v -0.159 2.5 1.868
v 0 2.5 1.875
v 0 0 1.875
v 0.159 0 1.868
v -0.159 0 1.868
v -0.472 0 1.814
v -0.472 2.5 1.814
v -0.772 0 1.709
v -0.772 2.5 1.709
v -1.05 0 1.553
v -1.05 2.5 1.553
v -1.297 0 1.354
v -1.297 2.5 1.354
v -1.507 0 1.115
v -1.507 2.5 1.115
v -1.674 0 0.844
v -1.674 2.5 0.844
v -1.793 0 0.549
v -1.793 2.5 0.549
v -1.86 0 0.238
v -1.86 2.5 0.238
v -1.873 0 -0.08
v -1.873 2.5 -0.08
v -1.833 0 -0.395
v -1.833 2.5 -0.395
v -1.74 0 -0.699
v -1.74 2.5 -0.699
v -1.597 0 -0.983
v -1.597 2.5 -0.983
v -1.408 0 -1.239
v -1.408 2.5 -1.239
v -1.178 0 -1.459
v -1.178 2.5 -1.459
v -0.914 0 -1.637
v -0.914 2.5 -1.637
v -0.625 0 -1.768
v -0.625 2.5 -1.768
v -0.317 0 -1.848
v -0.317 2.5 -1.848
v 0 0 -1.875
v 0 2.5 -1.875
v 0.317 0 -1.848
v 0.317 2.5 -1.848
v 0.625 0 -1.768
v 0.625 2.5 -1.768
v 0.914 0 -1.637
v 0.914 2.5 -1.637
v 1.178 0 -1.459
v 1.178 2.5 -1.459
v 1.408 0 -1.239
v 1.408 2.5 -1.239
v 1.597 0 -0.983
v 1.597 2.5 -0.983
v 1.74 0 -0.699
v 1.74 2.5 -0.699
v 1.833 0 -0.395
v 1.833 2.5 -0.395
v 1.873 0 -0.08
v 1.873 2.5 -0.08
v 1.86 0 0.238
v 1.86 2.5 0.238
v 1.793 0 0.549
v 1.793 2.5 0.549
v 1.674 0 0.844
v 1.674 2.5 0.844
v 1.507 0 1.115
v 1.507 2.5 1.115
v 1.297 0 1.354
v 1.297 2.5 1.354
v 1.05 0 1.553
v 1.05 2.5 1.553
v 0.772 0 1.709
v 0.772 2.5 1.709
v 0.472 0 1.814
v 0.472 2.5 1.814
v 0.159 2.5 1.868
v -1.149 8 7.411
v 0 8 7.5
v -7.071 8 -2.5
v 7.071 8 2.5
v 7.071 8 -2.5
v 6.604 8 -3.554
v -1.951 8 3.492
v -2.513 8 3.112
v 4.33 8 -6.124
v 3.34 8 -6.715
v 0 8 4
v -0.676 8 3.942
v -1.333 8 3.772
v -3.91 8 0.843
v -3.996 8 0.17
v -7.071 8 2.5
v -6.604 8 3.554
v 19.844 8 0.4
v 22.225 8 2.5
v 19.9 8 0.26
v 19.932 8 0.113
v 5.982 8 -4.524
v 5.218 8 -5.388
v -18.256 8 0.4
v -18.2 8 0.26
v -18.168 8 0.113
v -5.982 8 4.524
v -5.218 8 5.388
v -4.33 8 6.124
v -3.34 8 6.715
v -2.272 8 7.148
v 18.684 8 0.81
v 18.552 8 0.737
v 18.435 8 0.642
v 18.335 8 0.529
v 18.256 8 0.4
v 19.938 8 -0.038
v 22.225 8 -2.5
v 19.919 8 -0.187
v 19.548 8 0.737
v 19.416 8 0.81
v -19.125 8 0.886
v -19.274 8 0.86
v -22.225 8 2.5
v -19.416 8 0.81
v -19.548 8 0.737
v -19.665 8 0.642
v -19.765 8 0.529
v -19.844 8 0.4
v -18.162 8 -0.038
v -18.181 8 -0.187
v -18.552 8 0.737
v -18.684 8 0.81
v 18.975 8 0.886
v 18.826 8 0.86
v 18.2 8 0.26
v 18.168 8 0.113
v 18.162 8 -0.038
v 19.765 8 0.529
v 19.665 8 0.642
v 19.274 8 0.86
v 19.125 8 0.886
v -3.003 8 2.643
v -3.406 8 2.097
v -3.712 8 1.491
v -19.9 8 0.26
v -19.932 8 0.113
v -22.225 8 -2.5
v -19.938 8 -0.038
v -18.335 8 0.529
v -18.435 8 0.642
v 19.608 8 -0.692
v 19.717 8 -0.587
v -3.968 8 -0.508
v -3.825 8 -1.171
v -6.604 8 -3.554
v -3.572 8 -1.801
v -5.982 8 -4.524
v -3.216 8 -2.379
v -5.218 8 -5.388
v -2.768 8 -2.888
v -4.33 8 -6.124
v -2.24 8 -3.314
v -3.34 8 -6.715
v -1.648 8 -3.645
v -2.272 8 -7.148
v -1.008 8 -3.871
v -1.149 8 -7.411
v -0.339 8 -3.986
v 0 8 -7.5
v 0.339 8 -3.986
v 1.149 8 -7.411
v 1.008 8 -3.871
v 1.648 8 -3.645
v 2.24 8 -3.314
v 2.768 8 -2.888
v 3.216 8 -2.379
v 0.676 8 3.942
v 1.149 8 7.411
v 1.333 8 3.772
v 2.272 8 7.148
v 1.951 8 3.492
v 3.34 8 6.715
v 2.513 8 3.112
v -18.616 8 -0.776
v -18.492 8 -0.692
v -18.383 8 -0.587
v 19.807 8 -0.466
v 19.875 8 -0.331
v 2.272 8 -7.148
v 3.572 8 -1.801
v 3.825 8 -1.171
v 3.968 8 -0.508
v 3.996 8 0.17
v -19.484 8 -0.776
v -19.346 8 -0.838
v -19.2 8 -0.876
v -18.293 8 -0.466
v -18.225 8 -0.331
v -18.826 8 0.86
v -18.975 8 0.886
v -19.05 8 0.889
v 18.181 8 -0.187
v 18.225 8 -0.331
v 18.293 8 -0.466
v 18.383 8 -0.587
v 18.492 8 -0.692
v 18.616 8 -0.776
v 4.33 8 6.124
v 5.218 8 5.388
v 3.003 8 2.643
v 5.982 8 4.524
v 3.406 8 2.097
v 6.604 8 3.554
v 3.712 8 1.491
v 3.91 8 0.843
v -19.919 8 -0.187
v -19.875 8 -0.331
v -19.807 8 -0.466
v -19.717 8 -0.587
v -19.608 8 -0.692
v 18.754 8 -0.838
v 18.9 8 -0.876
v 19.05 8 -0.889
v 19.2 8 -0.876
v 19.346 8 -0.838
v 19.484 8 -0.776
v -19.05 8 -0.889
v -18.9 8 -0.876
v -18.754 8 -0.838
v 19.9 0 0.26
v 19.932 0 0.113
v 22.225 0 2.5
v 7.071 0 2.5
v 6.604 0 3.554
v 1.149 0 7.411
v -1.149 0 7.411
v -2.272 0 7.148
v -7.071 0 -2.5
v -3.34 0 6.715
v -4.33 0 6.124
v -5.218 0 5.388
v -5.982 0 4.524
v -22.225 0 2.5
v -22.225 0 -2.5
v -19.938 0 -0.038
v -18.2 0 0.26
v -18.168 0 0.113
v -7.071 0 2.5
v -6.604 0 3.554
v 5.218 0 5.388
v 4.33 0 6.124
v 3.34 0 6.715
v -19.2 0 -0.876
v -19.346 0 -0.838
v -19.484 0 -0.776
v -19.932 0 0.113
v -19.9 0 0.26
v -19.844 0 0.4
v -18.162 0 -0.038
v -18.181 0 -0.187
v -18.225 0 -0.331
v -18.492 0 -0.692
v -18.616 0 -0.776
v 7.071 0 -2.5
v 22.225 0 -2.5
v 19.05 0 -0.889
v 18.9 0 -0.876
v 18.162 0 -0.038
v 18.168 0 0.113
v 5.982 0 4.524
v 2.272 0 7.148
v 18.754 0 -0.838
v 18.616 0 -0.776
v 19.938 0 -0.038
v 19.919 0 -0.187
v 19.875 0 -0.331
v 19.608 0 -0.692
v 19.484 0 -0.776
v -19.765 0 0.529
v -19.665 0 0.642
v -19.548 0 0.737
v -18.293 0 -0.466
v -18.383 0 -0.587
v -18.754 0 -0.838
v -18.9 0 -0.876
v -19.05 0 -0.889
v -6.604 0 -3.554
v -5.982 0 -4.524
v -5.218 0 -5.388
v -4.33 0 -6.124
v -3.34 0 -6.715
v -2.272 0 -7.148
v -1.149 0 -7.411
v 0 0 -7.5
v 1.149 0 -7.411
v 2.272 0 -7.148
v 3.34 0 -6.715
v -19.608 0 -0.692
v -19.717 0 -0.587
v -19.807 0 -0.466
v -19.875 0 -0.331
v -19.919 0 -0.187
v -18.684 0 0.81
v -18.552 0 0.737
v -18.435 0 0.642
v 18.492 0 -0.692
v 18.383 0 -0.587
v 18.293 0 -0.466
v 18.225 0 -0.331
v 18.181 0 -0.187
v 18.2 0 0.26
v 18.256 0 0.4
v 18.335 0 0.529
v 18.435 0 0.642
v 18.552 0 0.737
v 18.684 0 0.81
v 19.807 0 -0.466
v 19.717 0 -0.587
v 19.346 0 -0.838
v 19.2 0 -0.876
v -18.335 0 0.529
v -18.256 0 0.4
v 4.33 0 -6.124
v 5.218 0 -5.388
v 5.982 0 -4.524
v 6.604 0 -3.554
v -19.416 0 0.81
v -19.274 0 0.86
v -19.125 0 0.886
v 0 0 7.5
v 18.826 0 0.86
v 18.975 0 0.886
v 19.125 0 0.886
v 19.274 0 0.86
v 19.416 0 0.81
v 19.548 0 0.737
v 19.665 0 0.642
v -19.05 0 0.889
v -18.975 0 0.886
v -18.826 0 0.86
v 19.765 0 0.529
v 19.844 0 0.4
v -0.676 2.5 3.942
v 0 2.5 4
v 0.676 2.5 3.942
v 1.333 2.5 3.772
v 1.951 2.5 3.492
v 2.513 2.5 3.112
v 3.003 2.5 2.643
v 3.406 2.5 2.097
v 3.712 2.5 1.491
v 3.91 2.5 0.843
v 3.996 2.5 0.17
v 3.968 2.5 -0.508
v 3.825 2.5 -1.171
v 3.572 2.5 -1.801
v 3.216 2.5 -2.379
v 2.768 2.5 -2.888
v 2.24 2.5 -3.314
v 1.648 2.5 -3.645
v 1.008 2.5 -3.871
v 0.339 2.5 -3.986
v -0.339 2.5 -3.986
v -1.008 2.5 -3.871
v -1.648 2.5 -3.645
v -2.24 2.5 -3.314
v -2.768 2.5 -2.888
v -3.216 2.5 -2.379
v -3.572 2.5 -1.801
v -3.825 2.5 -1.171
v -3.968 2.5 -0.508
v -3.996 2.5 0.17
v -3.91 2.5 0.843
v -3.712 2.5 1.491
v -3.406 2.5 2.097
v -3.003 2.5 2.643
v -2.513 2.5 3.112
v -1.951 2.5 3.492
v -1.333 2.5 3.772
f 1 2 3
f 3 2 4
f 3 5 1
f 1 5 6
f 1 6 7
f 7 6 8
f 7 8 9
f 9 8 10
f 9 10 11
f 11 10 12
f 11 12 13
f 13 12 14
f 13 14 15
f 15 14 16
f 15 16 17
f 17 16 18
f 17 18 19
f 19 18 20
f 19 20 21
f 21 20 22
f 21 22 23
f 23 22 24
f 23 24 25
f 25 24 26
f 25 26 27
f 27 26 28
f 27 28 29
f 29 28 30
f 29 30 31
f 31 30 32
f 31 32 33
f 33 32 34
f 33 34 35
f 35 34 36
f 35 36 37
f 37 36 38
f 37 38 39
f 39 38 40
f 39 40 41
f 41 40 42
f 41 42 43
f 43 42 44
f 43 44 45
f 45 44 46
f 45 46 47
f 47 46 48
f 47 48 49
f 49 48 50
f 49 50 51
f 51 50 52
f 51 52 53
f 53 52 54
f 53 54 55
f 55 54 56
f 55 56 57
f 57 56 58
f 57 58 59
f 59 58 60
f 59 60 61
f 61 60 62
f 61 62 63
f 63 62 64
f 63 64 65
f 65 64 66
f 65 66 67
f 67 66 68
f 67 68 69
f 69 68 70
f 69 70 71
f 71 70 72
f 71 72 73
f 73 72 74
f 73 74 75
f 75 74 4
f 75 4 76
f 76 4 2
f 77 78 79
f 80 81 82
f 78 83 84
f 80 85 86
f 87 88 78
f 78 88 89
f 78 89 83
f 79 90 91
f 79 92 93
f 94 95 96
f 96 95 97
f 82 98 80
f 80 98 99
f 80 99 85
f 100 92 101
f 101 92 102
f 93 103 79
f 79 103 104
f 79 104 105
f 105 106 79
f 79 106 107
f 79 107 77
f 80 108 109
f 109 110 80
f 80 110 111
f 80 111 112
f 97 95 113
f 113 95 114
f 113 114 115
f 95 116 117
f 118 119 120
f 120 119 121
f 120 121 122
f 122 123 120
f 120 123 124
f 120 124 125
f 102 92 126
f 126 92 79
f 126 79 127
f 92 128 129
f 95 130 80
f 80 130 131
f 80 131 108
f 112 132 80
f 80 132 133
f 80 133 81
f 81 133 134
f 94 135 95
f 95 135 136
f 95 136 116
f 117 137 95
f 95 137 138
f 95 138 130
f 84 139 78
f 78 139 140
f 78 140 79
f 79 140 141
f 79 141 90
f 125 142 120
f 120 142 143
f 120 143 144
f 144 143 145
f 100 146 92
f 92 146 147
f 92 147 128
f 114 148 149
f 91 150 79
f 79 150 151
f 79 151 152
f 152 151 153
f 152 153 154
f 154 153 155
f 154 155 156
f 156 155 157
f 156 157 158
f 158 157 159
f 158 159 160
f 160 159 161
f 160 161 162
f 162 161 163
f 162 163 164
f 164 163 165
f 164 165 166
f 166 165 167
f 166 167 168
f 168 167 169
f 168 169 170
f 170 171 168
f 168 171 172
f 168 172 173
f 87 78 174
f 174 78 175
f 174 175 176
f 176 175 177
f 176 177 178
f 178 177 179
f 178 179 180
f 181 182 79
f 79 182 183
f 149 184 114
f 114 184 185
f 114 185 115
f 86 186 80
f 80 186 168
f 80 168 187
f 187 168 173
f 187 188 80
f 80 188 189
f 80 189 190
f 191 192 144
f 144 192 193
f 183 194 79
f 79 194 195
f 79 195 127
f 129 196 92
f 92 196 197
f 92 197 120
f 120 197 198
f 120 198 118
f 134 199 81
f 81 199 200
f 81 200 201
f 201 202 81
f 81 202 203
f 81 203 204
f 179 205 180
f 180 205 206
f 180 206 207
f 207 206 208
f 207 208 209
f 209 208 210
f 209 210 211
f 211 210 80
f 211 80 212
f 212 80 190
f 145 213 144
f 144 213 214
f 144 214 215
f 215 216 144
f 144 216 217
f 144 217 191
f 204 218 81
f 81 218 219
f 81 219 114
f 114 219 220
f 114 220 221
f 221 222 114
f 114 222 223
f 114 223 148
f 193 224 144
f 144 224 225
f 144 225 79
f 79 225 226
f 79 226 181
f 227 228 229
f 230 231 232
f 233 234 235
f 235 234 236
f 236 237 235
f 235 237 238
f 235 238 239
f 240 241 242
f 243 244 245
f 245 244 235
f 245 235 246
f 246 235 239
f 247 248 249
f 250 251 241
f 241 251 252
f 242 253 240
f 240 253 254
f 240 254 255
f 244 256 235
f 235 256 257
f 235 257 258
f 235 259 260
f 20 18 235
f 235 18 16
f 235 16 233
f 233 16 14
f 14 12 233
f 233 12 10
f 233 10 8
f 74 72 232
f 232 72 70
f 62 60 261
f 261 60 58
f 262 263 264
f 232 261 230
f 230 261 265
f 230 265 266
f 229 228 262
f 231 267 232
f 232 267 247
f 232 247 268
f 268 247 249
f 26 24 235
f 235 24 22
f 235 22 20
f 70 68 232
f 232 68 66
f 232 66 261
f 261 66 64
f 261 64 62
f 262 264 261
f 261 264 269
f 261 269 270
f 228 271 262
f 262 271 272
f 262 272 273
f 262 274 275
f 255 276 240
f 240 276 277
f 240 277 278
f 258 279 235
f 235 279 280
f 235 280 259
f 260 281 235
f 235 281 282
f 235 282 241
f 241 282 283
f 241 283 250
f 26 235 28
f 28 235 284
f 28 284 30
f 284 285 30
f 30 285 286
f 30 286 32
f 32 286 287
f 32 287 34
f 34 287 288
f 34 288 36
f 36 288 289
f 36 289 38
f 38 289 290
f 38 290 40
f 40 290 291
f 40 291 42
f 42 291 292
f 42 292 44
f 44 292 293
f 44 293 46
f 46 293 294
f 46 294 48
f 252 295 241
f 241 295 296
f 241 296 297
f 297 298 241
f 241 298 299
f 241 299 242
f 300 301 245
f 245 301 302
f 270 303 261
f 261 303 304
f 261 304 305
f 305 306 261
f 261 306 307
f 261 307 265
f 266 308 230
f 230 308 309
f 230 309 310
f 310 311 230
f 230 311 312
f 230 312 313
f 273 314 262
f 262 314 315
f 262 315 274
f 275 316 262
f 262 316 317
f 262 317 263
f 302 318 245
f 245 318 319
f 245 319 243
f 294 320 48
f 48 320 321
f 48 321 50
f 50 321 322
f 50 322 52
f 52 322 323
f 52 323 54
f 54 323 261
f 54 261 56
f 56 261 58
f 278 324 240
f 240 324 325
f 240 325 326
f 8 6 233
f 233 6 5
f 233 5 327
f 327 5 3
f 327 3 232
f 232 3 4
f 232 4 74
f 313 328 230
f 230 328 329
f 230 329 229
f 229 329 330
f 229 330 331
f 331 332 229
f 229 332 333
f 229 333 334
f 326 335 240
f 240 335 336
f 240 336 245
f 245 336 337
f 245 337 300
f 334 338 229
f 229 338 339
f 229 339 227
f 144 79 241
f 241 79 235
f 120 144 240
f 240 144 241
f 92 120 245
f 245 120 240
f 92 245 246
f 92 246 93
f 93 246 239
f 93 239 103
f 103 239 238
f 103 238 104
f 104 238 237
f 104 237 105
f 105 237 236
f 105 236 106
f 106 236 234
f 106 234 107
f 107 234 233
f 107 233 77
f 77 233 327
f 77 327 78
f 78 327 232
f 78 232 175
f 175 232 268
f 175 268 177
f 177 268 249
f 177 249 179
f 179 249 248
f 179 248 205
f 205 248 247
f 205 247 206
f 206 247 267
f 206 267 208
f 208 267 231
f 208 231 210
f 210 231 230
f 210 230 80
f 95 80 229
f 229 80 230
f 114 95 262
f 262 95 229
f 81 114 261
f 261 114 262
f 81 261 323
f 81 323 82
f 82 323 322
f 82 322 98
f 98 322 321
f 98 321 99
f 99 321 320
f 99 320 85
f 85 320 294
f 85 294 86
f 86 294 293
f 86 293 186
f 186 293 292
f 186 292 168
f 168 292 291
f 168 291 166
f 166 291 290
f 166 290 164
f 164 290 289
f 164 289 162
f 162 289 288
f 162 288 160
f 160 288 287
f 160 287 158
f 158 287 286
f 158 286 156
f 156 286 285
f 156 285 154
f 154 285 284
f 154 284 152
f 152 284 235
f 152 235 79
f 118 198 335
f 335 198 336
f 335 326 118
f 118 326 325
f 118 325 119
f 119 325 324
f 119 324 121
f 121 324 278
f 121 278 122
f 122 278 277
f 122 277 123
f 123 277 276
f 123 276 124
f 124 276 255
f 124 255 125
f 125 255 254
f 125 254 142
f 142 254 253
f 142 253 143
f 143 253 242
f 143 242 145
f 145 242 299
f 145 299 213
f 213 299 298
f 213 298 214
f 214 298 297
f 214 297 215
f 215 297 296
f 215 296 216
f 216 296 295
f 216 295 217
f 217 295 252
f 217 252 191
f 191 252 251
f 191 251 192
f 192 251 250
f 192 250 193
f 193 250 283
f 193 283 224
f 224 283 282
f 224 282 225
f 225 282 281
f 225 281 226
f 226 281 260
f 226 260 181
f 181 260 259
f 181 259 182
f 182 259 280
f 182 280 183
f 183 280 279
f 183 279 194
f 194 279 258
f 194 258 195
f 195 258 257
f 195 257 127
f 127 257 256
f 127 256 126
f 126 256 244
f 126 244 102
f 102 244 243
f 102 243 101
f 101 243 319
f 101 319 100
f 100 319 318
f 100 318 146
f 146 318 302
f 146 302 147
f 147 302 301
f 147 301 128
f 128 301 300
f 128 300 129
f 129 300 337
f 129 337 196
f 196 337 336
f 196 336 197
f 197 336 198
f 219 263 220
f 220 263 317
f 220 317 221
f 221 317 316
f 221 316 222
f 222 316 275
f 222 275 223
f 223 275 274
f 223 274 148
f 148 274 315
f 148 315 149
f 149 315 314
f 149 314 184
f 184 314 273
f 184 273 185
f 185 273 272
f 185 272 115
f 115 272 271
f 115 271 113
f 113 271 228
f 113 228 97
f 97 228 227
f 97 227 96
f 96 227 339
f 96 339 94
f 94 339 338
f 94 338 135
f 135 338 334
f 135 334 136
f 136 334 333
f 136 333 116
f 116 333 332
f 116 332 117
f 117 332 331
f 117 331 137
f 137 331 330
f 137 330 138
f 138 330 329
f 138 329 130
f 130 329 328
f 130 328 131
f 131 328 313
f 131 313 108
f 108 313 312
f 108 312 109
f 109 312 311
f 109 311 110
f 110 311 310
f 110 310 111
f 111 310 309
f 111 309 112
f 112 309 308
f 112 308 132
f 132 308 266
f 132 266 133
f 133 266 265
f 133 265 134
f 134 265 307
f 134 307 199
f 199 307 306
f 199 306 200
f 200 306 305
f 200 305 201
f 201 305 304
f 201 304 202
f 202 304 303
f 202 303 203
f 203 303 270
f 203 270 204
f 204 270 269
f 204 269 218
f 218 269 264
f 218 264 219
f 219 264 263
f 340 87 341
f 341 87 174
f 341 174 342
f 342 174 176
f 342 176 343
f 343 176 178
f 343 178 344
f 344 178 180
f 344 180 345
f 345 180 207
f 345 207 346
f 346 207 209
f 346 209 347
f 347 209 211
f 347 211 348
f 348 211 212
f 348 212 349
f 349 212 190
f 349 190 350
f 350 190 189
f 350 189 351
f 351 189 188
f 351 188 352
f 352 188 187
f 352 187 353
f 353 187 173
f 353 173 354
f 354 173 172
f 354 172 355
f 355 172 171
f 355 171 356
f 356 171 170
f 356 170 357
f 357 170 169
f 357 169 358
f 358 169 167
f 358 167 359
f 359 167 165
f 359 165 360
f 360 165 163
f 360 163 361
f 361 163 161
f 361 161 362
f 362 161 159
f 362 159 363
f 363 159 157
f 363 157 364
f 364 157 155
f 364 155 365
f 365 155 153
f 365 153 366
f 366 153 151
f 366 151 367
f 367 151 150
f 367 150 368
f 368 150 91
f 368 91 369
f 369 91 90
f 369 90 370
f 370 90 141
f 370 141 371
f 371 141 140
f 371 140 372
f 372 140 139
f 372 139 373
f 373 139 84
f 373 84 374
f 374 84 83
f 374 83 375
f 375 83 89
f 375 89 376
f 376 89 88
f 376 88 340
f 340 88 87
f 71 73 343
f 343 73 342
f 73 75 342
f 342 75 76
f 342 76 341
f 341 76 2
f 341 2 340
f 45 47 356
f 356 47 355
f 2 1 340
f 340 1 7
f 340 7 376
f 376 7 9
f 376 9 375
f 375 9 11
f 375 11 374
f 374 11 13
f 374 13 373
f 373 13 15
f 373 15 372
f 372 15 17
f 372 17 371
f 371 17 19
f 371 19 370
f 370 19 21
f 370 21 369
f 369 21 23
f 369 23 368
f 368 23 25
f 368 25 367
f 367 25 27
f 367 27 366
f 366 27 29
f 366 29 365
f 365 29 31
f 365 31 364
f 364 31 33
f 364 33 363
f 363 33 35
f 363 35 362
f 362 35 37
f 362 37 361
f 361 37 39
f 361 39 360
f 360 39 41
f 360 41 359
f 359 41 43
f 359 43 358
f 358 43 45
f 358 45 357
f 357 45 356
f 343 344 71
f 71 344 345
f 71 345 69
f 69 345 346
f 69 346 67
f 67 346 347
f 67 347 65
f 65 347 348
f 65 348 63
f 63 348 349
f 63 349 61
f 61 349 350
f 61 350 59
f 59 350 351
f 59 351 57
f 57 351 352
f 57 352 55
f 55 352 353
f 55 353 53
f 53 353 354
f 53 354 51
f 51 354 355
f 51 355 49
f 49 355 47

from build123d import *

# Parameters (mm, degrees)
SKETCH1_R           = 0.889
SKETCH1_R_2         = 1.875
BOSS_EXTRUDE1_DEPTH = 8
SKETCH2_R           = 4
CUT_EXTRUDE1_DEPTH  = 5.5


with BuildPart() as part:
    # Sketch1 → Boss-Extrude1 (new body)
    with BuildSketch(Plane(origin=(0, 0, 0), x_dir=(1, 0, 0), z_dir=(0, 1, 0))):
        with BuildLine():
            Line((-22.225, 2.5), (-22.225, -2.5))
            Line((-22.225, -2.5), (-7.071067812, -2.5))
            ThreePointArc((-7.071067812, -2.5), (0, -7.5), (7.071067812, -2.5))
            Line((7.071067812, -2.5), (22.225, -2.5))
            Line((22.225, -2.5), (22.225, 2.5))
            Line((22.225, 2.5), (7.071067812, 2.5))
            ThreePointArc((7.071067812, 2.5), (0, 7.5), (-7.071067812, 2.5))
            Line((-7.071067812, 2.5), (-22.225, 2.5))
        make_face()
        with Locations(Location((-19.05, 0, 0), (0, 0, 270))):
            Circle(SKETCH1_R, mode=Mode.SUBTRACT)
        with Locations(Location((0, 0, 0), (0, 0, 270))):
            Circle(SKETCH1_R_2, mode=Mode.SUBTRACT)
        with Locations(Location((19.05, 0, 0), (0, 0, 90))):
            Circle(SKETCH1_R, mode=Mode.SUBTRACT)
    extrude(amount=BOSS_EXTRUDE1_DEPTH)

    # Sketch2 → Cut-Extrude1 (cut)
    with BuildSketch(Plane(origin=(0, 8, 0), x_dir=(1, 0, 0), z_dir=(0, 1, 0))):
        with Locations(Location((0, 0, 0), (0, 0, 270))):
            Circle(SKETCH2_R)
    extrude(amount=-CUT_EXTRUDE1_DEPTH, mode=Mode.SUBTRACT)


solid = part.part
